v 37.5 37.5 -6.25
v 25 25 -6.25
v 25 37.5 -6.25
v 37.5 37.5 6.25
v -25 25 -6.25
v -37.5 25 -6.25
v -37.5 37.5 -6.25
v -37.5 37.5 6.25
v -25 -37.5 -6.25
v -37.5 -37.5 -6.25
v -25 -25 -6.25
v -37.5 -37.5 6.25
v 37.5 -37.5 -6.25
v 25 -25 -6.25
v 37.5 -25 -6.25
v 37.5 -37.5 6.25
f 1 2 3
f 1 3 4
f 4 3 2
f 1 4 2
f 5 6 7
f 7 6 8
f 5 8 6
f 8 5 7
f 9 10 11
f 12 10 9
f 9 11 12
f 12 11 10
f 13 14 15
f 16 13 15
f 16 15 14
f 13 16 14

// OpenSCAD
// file: def.scad
block_size_3 = 19;
block_size_4 = 16;
block_size_5 = 14;
block_size_6 = 12.5;
block_size_7 = 11;
block_size_8 = 10;

inf = 1000;

round_radius = 1;
sticker_margin = 2.5;
sticker_round_radius = 0.75;

module _block(size) {
    minkowski() {
        cube([size - round_radius * 2, size - round_radius * 2, size - round_radius * 2], center = true);
        sphere(r = round_radius, $fn = 24);
    }
}

module _selector_0(size) {
    cube([size - 0.2, size - 0.2, size - 0.2], center = true);
}

module _sticker(size) {
    minkowski() {
        cube([size - sticker_margin * 2, size - sticker_margin * 2, 0.1], center = true);
        cylinder(r = sticker_round_radius, h = 0.1, $fn = 24);
    }
}

module _selector_corner_cw(size) {
    difference() {
        cube([size, size, size], center = true);
        rotate([0, -45, 0])
            translate([-inf, -inf, 0])
                cube([inf * 2, inf * 2, inf]);
        rotate([90, 0, 45])
            translate([-inf, -inf, 0])
                cube([inf * 2, inf * 2, inf]);
    }
}

module _selector_corner_ccw(size) {
    difference() {
        cube([size, size, size], center = true);
        rotate([45, 0, 0])
            translate([-inf, -inf, 0])
                cube([inf * 2, inf * 2, inf]);
        rotate([0, -90, -45])
            translate([-inf, -inf, 0])
                cube([inf * 2, inf * 2, inf]);
    }
}

module _selector_edge_cw(size) {
    difference() {
        cube([size, size, size], center = true);
        rotate([90, 0, 45])
            translate([-inf, -inf, 0])
                cube([inf * 2, inf * 2, inf]);
    }
}

module _selector_edge_ccw(size) {
    difference() {
        cube([size, size, size], center = true);
        rotate([0, -90, -45])
            translate([-inf, -inf, 0])
                cube([inf * 2, inf * 2, inf]);
    }
}
// main file
include <def.scad>

for (deg = [0 : 90 : 270])
    rotate([0, 0, deg])
        translate([block_size_6 * 2.5, block_size_6 * 2.5, 0])
            _selector_corner_cw(block_size_6);
